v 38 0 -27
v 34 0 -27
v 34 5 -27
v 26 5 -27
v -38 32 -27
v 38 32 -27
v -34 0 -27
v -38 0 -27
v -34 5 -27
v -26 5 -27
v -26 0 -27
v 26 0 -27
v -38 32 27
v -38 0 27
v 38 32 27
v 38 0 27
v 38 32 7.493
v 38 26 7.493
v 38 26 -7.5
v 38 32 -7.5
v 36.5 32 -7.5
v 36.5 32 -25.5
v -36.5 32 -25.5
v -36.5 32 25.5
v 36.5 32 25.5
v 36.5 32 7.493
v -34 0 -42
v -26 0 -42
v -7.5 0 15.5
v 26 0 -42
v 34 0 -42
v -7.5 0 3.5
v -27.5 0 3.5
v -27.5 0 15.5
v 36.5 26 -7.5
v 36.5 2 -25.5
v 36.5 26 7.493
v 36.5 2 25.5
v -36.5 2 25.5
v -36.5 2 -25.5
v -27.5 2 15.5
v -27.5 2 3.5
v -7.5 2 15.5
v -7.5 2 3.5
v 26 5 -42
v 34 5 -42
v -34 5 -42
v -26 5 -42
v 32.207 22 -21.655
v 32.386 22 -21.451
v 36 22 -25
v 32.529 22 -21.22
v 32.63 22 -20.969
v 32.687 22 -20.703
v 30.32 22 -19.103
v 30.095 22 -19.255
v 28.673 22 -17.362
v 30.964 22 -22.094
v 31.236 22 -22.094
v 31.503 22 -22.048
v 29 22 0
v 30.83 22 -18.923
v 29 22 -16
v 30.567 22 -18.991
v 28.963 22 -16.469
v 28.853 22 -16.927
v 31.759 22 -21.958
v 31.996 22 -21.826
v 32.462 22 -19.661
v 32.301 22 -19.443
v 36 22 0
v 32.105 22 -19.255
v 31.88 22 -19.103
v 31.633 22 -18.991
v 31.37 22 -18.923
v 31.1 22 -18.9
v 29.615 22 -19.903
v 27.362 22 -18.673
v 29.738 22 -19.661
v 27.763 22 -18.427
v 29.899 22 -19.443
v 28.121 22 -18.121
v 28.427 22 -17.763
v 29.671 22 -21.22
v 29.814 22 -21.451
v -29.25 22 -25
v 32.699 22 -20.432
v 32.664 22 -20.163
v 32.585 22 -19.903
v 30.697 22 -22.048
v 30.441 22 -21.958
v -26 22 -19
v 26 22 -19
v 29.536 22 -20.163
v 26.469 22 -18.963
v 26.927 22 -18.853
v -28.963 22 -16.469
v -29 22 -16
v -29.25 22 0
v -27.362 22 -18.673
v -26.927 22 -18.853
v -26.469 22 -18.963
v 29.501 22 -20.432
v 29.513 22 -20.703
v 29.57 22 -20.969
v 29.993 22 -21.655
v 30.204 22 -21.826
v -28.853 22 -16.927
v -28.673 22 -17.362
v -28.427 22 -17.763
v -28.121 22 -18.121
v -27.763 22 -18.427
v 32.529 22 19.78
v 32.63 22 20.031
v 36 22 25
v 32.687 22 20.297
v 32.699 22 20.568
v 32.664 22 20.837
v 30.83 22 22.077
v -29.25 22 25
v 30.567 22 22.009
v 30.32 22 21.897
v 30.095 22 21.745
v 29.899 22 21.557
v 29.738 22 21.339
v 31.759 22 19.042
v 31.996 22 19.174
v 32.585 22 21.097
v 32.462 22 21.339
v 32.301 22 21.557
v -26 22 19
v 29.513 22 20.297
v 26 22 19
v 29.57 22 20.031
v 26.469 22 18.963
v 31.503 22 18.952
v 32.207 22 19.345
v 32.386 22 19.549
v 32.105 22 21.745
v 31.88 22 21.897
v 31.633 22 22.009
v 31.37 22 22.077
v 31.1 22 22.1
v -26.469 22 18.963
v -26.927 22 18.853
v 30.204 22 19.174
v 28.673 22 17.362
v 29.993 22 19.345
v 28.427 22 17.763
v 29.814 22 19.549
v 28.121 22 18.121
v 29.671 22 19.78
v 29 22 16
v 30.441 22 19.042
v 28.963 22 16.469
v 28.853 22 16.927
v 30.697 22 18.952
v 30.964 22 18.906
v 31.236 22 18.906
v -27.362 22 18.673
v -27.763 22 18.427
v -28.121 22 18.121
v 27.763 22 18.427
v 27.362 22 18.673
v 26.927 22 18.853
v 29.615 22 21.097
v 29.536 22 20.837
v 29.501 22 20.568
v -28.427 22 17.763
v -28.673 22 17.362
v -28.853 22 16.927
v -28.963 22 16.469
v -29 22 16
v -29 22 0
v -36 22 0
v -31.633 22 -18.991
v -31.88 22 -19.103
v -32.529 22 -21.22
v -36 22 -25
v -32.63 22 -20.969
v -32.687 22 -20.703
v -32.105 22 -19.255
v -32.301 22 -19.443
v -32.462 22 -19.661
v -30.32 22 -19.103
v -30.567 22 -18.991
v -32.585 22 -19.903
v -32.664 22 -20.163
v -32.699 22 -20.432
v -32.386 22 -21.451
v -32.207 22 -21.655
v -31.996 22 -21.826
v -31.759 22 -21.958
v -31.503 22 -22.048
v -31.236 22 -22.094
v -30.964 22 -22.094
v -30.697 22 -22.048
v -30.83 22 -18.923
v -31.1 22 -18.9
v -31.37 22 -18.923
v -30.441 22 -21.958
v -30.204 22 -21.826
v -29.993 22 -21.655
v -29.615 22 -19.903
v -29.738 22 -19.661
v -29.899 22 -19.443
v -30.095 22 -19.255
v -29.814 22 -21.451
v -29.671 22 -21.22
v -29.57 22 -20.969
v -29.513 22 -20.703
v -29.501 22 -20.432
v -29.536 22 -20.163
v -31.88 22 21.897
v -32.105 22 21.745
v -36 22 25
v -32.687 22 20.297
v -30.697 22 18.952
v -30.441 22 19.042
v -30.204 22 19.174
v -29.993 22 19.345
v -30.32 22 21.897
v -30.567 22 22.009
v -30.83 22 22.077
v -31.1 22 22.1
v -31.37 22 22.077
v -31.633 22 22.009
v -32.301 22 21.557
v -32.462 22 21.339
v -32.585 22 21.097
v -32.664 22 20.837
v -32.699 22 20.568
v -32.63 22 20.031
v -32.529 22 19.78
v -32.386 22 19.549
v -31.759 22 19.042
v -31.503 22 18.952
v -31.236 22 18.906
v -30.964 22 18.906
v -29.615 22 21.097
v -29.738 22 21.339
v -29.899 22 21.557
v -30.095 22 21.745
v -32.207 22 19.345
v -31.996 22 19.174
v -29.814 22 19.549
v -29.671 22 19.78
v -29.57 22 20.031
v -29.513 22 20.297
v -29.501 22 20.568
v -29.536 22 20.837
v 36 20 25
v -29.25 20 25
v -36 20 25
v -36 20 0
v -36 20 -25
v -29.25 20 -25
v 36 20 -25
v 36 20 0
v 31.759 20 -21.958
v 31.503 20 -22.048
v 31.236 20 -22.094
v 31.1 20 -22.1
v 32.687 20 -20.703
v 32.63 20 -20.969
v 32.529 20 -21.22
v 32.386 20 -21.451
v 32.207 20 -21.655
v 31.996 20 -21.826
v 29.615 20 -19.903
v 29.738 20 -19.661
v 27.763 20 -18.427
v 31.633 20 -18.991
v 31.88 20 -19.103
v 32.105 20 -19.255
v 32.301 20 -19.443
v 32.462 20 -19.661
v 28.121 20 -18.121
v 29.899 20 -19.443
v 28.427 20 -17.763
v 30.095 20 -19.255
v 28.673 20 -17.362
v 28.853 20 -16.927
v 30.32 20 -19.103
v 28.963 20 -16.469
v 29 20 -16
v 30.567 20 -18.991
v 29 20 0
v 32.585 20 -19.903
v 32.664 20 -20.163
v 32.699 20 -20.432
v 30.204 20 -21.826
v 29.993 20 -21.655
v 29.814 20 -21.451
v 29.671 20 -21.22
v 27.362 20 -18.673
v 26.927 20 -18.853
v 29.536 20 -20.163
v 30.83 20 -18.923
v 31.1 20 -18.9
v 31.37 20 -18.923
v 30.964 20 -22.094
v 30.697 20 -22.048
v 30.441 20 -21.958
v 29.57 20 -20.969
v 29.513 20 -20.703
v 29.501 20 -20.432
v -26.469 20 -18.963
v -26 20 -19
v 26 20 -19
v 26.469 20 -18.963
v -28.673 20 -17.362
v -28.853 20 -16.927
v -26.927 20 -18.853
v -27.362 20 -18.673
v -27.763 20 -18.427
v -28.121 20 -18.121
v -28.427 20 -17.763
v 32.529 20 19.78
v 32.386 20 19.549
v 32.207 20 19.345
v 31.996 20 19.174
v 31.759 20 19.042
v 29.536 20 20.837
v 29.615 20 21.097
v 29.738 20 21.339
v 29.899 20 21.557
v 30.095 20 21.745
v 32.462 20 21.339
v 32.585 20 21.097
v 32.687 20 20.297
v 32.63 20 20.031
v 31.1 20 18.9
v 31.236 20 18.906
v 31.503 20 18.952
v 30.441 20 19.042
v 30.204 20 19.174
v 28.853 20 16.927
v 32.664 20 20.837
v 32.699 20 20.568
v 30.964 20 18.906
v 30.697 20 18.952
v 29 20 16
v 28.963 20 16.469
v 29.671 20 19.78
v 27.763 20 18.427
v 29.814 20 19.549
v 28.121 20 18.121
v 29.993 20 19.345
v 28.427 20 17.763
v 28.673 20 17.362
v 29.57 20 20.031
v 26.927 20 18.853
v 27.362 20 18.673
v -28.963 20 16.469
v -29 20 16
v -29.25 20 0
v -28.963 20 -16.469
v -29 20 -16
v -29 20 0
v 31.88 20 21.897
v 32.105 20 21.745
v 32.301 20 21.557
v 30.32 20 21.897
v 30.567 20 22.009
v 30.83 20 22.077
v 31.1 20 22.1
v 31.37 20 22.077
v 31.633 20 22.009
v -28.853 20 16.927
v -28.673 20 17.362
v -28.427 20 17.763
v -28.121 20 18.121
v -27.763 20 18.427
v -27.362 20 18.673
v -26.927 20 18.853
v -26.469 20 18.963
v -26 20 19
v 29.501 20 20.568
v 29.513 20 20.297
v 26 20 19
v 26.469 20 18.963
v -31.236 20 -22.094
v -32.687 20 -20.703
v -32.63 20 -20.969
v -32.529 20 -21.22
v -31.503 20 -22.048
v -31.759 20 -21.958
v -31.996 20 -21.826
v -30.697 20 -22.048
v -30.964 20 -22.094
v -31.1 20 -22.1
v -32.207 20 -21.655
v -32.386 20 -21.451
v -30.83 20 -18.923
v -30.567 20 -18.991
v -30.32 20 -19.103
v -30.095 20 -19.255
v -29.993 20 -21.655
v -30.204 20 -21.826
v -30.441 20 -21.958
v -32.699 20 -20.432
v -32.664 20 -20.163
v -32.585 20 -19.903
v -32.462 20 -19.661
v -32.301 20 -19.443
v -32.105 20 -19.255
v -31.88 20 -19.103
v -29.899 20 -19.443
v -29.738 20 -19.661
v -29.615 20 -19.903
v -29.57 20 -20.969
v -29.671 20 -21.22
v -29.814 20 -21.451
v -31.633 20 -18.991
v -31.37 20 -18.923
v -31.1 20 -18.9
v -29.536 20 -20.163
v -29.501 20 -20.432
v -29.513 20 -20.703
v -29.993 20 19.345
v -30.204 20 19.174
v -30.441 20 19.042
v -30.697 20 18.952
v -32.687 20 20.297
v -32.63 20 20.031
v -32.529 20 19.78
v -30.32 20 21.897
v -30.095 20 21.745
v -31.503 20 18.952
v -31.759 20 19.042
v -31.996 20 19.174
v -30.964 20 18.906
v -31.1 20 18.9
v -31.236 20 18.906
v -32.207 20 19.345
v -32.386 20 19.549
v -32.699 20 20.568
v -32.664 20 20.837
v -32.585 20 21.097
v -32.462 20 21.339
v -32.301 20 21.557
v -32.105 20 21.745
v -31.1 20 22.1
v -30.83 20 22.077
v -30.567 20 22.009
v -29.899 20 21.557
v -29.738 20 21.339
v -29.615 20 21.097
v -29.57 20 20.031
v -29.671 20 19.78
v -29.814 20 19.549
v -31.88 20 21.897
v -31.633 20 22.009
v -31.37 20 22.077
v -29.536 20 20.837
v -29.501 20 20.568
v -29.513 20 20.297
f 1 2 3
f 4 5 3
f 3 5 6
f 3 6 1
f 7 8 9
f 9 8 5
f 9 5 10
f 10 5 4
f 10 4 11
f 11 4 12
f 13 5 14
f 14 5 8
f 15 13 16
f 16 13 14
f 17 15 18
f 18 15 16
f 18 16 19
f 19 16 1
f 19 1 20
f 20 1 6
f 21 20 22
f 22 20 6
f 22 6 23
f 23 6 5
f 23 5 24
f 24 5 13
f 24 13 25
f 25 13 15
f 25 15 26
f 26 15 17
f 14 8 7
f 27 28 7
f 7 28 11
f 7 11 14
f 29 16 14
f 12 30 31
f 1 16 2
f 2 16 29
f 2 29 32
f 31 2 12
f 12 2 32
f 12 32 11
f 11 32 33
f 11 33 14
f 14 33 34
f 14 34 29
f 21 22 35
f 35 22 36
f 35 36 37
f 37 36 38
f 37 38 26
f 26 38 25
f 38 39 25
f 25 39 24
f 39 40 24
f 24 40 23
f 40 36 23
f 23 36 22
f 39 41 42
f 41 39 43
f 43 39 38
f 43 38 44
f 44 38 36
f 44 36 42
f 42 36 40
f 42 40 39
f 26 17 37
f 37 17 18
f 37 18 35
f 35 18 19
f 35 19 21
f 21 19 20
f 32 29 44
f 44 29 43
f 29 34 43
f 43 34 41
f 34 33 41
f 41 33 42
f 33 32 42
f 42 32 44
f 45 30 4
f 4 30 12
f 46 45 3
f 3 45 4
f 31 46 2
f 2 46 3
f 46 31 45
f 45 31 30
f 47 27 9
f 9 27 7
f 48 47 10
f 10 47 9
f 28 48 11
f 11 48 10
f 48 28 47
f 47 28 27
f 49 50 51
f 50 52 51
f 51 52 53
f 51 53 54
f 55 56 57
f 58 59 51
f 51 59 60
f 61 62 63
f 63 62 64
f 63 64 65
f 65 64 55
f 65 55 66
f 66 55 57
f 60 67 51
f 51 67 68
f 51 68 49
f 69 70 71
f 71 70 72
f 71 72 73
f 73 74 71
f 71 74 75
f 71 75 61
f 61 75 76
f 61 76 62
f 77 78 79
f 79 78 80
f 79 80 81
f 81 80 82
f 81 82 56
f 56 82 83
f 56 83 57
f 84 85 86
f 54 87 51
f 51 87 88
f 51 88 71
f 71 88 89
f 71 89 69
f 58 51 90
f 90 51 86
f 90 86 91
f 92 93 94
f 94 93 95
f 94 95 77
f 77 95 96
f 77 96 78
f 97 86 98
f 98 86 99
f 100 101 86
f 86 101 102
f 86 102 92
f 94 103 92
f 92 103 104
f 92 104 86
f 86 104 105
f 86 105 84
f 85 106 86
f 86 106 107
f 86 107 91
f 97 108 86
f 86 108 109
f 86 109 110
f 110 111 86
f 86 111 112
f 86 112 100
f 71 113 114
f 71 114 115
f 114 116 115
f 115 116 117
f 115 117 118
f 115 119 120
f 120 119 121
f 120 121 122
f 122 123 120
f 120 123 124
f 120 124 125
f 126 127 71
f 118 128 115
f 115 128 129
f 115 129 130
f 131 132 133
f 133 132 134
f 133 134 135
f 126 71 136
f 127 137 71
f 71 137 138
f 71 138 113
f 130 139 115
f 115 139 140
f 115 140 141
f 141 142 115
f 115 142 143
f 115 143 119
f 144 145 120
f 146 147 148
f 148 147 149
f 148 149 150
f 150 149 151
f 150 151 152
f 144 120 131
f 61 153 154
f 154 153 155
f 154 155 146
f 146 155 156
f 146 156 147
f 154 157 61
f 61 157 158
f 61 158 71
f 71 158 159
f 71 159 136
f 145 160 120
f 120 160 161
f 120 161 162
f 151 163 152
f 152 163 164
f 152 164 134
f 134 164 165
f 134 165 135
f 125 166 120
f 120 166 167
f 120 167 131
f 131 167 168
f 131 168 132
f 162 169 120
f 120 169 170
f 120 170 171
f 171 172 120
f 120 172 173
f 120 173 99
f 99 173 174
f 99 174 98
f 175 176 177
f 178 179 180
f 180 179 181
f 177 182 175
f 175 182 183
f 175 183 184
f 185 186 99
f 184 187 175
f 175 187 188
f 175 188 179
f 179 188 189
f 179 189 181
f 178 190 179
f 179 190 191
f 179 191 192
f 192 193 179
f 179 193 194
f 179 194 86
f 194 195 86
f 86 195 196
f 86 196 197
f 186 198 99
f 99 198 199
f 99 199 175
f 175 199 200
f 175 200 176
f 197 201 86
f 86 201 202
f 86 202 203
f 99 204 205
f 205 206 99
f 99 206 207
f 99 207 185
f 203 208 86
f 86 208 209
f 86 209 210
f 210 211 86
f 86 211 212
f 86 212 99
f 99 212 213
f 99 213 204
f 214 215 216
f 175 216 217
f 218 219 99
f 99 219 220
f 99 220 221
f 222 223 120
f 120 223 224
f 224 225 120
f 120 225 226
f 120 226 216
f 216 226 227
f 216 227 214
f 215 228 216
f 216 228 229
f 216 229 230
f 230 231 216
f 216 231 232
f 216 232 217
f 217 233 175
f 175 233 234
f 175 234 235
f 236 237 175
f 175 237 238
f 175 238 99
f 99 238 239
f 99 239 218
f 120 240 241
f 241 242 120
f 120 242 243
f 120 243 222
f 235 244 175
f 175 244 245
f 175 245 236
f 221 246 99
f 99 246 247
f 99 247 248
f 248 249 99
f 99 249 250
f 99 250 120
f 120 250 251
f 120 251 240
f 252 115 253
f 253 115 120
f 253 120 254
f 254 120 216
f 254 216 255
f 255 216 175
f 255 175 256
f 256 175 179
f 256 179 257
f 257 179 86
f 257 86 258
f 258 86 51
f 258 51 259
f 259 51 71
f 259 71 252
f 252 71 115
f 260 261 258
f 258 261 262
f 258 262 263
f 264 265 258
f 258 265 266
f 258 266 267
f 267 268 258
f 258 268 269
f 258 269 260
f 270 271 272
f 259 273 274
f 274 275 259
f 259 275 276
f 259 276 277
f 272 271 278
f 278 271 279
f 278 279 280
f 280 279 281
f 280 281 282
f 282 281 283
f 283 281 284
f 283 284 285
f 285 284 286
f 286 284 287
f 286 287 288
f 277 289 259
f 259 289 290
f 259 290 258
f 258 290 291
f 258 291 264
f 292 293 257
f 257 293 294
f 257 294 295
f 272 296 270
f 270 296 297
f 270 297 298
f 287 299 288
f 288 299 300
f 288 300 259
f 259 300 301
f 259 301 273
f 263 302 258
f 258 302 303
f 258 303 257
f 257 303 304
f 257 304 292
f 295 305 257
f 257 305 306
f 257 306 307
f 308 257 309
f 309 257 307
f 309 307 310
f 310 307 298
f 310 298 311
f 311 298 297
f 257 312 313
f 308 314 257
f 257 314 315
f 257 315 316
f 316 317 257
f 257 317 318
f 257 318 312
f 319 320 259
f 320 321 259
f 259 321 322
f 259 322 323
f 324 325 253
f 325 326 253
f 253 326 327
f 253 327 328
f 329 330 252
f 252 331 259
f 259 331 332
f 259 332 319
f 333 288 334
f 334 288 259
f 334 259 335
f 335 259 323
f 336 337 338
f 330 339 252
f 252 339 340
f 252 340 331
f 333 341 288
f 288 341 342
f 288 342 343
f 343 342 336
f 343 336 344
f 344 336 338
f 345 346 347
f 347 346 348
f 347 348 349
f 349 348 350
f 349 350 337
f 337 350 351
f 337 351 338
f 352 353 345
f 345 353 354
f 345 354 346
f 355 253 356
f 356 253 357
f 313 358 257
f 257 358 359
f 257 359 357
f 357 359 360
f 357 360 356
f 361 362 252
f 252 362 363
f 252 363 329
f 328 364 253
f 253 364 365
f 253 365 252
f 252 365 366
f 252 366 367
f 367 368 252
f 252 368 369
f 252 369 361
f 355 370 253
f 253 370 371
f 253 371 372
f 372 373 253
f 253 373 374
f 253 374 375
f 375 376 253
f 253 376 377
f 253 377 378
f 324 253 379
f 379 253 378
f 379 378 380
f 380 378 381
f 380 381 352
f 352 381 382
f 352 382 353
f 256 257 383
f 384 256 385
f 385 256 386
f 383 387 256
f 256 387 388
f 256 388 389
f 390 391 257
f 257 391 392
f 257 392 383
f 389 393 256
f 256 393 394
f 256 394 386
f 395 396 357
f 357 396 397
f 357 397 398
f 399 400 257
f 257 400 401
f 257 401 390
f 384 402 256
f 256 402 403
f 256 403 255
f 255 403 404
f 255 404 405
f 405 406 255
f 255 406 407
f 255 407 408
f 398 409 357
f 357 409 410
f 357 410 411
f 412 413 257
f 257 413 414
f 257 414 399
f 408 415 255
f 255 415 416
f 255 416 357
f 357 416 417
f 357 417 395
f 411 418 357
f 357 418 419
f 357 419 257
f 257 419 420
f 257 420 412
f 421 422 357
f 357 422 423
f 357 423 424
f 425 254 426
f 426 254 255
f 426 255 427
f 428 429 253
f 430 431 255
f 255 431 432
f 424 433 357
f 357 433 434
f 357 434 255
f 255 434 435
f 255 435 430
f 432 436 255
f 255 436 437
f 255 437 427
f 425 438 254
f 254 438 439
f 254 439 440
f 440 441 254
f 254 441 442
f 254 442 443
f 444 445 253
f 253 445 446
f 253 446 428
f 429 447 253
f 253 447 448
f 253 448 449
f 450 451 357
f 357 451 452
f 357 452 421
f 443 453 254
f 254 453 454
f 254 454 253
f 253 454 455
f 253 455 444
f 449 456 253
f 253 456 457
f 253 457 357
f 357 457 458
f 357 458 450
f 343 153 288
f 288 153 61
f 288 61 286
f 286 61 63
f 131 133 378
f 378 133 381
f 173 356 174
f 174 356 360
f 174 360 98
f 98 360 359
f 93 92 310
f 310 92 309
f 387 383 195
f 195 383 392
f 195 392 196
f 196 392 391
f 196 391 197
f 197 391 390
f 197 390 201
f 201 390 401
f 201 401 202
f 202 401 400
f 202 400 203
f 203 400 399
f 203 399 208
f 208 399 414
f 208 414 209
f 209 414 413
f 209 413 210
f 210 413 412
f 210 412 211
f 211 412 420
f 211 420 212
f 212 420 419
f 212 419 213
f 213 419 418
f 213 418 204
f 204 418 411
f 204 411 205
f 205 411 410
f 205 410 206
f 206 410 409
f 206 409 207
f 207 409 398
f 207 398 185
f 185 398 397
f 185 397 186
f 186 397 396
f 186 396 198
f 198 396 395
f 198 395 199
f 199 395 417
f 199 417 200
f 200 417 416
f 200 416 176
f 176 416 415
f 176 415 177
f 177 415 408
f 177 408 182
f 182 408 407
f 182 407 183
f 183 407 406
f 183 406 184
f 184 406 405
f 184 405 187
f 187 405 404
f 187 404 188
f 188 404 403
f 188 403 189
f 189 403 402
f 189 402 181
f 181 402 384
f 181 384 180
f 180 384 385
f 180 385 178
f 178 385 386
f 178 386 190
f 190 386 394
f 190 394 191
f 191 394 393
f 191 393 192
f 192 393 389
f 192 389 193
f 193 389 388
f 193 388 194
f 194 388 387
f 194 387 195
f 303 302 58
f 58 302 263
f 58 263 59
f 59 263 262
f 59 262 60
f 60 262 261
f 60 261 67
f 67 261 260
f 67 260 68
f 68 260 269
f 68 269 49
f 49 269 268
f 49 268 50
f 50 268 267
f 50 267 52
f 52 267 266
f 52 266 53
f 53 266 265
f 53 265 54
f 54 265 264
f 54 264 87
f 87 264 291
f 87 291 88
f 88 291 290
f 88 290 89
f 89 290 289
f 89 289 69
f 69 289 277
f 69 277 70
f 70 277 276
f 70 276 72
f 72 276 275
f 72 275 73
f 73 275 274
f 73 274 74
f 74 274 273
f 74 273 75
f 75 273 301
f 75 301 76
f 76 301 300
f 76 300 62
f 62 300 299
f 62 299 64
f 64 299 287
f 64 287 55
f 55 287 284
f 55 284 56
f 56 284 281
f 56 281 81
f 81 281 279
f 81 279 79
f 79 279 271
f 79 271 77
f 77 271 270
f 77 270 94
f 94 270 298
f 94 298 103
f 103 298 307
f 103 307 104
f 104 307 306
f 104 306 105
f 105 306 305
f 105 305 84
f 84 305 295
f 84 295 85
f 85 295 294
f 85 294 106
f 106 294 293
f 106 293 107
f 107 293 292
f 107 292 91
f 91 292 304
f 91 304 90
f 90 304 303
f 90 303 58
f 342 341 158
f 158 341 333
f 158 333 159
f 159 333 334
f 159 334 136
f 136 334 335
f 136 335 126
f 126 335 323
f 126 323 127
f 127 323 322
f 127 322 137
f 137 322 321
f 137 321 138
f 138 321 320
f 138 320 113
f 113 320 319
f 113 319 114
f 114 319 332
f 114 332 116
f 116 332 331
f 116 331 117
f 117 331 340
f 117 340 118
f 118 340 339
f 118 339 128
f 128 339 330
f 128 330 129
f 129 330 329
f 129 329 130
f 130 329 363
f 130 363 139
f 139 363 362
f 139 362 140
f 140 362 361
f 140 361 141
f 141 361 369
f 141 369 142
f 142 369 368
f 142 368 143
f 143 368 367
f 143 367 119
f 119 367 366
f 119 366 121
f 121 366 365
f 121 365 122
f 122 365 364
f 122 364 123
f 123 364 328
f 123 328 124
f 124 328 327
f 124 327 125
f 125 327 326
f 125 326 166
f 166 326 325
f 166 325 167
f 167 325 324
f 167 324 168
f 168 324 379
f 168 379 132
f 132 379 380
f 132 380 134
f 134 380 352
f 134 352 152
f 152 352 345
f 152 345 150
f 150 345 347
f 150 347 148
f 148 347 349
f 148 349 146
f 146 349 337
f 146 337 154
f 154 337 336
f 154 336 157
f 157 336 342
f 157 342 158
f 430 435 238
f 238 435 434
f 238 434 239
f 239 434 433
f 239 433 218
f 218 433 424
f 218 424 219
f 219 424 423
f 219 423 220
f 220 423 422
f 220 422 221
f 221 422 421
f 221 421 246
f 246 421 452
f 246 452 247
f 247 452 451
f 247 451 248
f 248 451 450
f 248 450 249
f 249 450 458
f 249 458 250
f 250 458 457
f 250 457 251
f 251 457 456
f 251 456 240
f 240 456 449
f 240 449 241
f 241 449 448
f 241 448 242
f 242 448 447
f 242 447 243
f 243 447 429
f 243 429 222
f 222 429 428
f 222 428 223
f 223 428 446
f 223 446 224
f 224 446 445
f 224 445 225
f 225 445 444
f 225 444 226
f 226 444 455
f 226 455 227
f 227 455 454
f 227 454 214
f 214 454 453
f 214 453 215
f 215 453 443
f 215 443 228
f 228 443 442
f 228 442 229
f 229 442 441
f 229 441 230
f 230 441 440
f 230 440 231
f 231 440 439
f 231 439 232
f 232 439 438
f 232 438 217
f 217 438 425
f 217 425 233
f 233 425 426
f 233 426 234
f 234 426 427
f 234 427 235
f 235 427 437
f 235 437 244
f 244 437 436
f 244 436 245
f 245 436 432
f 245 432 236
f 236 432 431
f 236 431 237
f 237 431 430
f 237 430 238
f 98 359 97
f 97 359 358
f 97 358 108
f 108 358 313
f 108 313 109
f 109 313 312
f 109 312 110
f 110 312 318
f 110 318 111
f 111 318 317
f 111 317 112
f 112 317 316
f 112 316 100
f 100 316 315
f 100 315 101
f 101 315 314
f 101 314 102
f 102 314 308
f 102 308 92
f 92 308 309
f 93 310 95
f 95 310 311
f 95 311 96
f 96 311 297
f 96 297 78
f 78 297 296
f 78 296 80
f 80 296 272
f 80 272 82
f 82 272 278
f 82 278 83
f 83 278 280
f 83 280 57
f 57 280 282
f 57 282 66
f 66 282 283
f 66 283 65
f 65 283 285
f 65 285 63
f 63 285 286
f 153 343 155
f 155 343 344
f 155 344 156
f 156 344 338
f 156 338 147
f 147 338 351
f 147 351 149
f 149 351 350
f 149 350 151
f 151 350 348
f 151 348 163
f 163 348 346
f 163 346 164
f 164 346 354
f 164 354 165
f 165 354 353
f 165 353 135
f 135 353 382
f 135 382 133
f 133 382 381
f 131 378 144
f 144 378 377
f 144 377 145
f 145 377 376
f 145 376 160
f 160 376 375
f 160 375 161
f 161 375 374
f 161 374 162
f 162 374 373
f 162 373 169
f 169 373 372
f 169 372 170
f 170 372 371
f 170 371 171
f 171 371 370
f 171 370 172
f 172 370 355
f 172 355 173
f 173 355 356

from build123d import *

# Parameters (mm, degrees)
ENCLOSURE_SHELL_SKETCH_W      = 76
ENCLOSURE_SHELL_SKETCH_H      = 54
ENCLOSURE_SHELL_FEATURE_DEPTH = 32
ENCLOSURE_GAP_SKETCH_W        = 73
ENCLOSURE_GAP_SKETCH_H        = 51
ENCLOSURE_GAP_FEATURE_DEPTH   = 30
SCREW_SHELL_SKETCH_R          = 2.5
SCREW_SHELL_FEATURE_DEPTH     = 8
BATTERY_CUT_REACH             = 78
BATTERY_CUT_DIRECTION_2_DEPTH = 1
CAMERA_CORD_HOLE_SKETCH_W     = 20
CAMERA_CORD_HOLE_SKETCH_H     = 12
CAMERA_CORD_HOLE_DEPTH        = 3
TAB_FEATURE_SKETCH_W          = 8
TAB_FEATURE_SKETCH_H          = 5
TAB_FEATURE_DEPTH             = 15
BOSS_EXTRUDE2_START           = -2
SKETCH1_W                     = 72
SKETCH1_H                     = 50
BOSS_EXTRUDE2_DEPTH           = 20
CUT_EXTRUDE1_START            = -2
SKETCH2_W                     = 72
SKETCH2_H                     = 50
CUT_EXTRUDE1_DEPTH            = 18
SKETCH4_W                     = 58
SKETCH4_H                     = 38
CUT_EXTRUDE3_DEPTH            = 2
SKETCH5_R                     = 1.6
CUT_EXTRUDE4_DEPTH            = 10
FILLET1_R                     = 3
FILLET3_R                     = 3
FILLET4_R                     = 3
FILLET5_R                     = 3


with BuildPart() as part:
    # Enclosure Shell Sketch → Enclosure Shell Feature (new body)
    with BuildSketch(Plane(origin=(0, 0, 0), x_dir=(1, 0, 0), z_dir=(0, 1, 0))):
        Rectangle(ENCLOSURE_SHELL_SKETCH_W, ENCLOSURE_SHELL_SKETCH_H)
    extrude(amount=ENCLOSURE_SHELL_FEATURE_DEPTH)

    # Enclosure Gap Sketch → Enclosure Gap Feature (cut)
    with BuildSketch(Plane(origin=(0, 32, 0), x_dir=(1, 0, 0), z_dir=(0, 1, 0))):
        Rectangle(ENCLOSURE_GAP_SKETCH_W, ENCLOSURE_GAP_SKETCH_H)
    extrude(amount=-ENCLOSURE_GAP_FEATURE_DEPTH, mode=Mode.SUBTRACT)

    # Screw Shell Sketch → Screw Shell Feature (add)
    with BuildSketch(Plane(origin=(0, 2, 0), x_dir=(1, 0, 0), z_dir=(0, 1, 0))):
        with Locations((-31.088465065, 20.5)):
            Circle(SCREW_SHELL_SKETCH_R)
        with Locations((-31.1, -20.5)):
            Circle(SCREW_SHELL_SKETCH_R)
        with Locations((31.1, 20.5)):
            Circle(SCREW_SHELL_SKETCH_R)
        with Locations((31.1, -20.5)):
            Circle(SCREW_SHELL_SKETCH_R)
    extrude(amount=SCREW_SHELL_FEATURE_DEPTH)

    # Battery Cut Sketch → Battery Cut (cut, up to next)
    with BuildSketch(Plane.ZY.offset(-38), mode=Mode.PRIVATE) as battery_cut_sk1:
        Polygon((0, 32), (7.492527579, 32), (7.492527579, 26), (-7.5, 26), (-7.5, 32), align=None)
    battery_cut_tool1 = extrude(battery_cut_sk1.sketch, amount=BATTERY_CUT_REACH, mode=Mode.PRIVATE) & part.part
    add(battery_cut_tool1.solids().sort_by_distance((38, 29, -0.003736))[0], mode=Mode.SUBTRACT)

    # Battery Cut Sketch → Battery Cut direction 2 (cut)
    with BuildSketch(Plane.ZY.offset(-38)):
        Polygon((0, 32), (7.492527579, 32), (7.492527579, 26), (-7.5, 26), (-7.5, 32), align=None)
    extrude(amount=-BATTERY_CUT_DIRECTION_2_DEPTH, mode=Mode.SUBTRACT)

    # Camera Cord Hole Sketch → Camera Cord Hole (cut, through all)
    with BuildSketch(Plane(origin=(0, 2, 0), x_dir=(1, 0, 0), z_dir=(0, 1, 0))):
        with Locations((-17.5, -9.5)):
            Rectangle(CAMERA_CORD_HOLE_SKETCH_W, CAMERA_CORD_HOLE_SKETCH_H)
    extrude(amount=-CAMERA_CORD_HOLE_DEPTH, mode=Mode.SUBTRACT)

    # Tab Feature Sketch → Tab Feature (add)
    with BuildSketch(Plane(origin=(0, 0, -27), x_dir=(-1, 0, 0), z_dir=(0, 0, -1))):
        with Locations((-30, 2.5)):
            Rectangle(TAB_FEATURE_SKETCH_W, TAB_FEATURE_SKETCH_H)
        with Locations((30, 2.5)):
            Rectangle(TAB_FEATURE_SKETCH_W, TAB_FEATURE_SKETCH_H)
    extrude(amount=TAB_FEATURE_DEPTH)

    # Sketch1 → Boss-Extrude2 (add)
    with BuildSketch(Plane(origin=(0, 0, 0), x_dir=(-1, 0, 0), z_dir=(0, -1, 0)).offset(BOSS_EXTRUDE2_START)):
        Rectangle(SKETCH1_W, SKETCH1_H)
    extrude(amount=-BOSS_EXTRUDE2_DEPTH)

    # Sketch2 → Cut-Extrude1 (cut)
    with BuildSketch(Plane(origin=(0, 0, 0), x_dir=(-1, 0, 0), z_dir=(0, -1, 0)).offset(CUT_EXTRUDE1_START)):
        Rectangle(SKETCH2_W, SKETCH2_H)
    extrude(amount=-CUT_EXTRUDE1_DEPTH, mode=Mode.SUBTRACT)

    # Sketch4 → Cut-Extrude3 (cut)
    with BuildSketch(Plane(origin=(0, 22, 0), x_dir=(1, 0, 0), z_dir=(0, 1, 0))):
        Rectangle(SKETCH4_W, SKETCH4_H)
    extrude(amount=-CUT_EXTRUDE3_DEPTH, mode=Mode.SUBTRACT)

    # Sketch5 → Cut-Extrude4 (cut)
    with BuildSketch(Plane(origin=(0, 22, 0), x_dir=(1, 0, 0), z_dir=(0, 1, 0))):
        with Locations((-31.1, 20.5)):
            Circle(SKETCH5_R)
        with Locations((31.1, 20.5)):
            Circle(SKETCH5_R)
        with Locations((31.1, -20.5)):
            Circle(SKETCH5_R)
        with Locations((-31.1, -20.5)):
            Circle(SKETCH5_R)
    extrude(amount=-CUT_EXTRUDE4_DEPTH, mode=Mode.SUBTRACT)

    # Fillet1
    fillet1_edges = [part.edges().sort_by_distance(p)[0] for p in [
        (-29, 21, -19),
    ]]
    fillet(fillet1_edges, radius=FILLET1_R)

    # Fillet3
    fillet3_edges = [part.edges().sort_by_distance(p)[0] for p in [
        (29, 21, -19),
    ]]
    fillet(fillet3_edges, radius=FILLET3_R)

    # Fillet4
    fillet4_edges = [part.edges().sort_by_distance(p)[0] for p in [
        (29, 21, 19),
    ]]
    fillet(fillet4_edges, radius=FILLET4_R)

    # Fillet5
    fillet5_edges = [part.edges().sort_by_distance(p)[0] for p in [
        (-29, 21, 19),
    ]]
    fillet(fillet5_edges, radius=FILLET5_R)


solid = part.part
